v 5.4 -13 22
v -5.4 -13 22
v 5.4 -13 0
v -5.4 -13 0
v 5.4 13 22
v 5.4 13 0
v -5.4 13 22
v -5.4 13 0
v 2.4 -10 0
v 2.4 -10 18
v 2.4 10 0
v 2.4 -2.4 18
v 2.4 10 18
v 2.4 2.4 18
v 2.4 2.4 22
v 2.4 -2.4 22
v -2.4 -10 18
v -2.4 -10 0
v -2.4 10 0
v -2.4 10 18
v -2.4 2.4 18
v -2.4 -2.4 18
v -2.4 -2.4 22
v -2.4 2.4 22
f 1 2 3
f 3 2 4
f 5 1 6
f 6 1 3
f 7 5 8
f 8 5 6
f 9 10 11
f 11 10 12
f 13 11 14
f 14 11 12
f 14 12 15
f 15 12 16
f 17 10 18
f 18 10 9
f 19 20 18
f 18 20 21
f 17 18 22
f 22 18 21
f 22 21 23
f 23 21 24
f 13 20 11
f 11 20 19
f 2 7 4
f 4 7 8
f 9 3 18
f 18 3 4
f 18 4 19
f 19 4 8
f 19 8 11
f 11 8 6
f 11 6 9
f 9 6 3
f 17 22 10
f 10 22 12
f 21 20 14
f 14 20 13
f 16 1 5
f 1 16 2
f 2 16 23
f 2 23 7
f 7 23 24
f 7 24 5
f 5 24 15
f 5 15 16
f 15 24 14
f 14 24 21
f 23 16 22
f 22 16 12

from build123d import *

# Parameters (mm, degrees)
SKETCH1_W           = 10.8
SKETCH1_H           = 26
SKETCH1_W_2         = 4.8
SKETCH1_H_2         = 20
BOSS_EXTRUDE1_DEPTH = 18
SKETCH2_W           = 10.8
SKETCH2_H           = 26
SKETCH2_W_2         = 4.8
SKETCH2_H_2         = 4.8
BOSS_EXTRUDE2_DEPTH = 4


with BuildPart() as part:
    # Sketch1 → Boss-Extrude1 (new body)
    with BuildSketch(Plane.XY):
        Rectangle(SKETCH1_W, SKETCH1_H)
        Rectangle(SKETCH1_W_2, SKETCH1_H_2, mode=Mode.SUBTRACT)
    extrude(amount=BOSS_EXTRUDE1_DEPTH)

    # Sketch2 → Boss-Extrude2 (add)
    with BuildSketch(Plane.XY.offset(18)):
        Rectangle(SKETCH2_W, SKETCH2_H)
        Rectangle(SKETCH2_W_2, SKETCH2_H_2, mode=Mode.SUBTRACT)
    extrude(amount=BOSS_EXTRUDE2_DEPTH)


solid = part.part
